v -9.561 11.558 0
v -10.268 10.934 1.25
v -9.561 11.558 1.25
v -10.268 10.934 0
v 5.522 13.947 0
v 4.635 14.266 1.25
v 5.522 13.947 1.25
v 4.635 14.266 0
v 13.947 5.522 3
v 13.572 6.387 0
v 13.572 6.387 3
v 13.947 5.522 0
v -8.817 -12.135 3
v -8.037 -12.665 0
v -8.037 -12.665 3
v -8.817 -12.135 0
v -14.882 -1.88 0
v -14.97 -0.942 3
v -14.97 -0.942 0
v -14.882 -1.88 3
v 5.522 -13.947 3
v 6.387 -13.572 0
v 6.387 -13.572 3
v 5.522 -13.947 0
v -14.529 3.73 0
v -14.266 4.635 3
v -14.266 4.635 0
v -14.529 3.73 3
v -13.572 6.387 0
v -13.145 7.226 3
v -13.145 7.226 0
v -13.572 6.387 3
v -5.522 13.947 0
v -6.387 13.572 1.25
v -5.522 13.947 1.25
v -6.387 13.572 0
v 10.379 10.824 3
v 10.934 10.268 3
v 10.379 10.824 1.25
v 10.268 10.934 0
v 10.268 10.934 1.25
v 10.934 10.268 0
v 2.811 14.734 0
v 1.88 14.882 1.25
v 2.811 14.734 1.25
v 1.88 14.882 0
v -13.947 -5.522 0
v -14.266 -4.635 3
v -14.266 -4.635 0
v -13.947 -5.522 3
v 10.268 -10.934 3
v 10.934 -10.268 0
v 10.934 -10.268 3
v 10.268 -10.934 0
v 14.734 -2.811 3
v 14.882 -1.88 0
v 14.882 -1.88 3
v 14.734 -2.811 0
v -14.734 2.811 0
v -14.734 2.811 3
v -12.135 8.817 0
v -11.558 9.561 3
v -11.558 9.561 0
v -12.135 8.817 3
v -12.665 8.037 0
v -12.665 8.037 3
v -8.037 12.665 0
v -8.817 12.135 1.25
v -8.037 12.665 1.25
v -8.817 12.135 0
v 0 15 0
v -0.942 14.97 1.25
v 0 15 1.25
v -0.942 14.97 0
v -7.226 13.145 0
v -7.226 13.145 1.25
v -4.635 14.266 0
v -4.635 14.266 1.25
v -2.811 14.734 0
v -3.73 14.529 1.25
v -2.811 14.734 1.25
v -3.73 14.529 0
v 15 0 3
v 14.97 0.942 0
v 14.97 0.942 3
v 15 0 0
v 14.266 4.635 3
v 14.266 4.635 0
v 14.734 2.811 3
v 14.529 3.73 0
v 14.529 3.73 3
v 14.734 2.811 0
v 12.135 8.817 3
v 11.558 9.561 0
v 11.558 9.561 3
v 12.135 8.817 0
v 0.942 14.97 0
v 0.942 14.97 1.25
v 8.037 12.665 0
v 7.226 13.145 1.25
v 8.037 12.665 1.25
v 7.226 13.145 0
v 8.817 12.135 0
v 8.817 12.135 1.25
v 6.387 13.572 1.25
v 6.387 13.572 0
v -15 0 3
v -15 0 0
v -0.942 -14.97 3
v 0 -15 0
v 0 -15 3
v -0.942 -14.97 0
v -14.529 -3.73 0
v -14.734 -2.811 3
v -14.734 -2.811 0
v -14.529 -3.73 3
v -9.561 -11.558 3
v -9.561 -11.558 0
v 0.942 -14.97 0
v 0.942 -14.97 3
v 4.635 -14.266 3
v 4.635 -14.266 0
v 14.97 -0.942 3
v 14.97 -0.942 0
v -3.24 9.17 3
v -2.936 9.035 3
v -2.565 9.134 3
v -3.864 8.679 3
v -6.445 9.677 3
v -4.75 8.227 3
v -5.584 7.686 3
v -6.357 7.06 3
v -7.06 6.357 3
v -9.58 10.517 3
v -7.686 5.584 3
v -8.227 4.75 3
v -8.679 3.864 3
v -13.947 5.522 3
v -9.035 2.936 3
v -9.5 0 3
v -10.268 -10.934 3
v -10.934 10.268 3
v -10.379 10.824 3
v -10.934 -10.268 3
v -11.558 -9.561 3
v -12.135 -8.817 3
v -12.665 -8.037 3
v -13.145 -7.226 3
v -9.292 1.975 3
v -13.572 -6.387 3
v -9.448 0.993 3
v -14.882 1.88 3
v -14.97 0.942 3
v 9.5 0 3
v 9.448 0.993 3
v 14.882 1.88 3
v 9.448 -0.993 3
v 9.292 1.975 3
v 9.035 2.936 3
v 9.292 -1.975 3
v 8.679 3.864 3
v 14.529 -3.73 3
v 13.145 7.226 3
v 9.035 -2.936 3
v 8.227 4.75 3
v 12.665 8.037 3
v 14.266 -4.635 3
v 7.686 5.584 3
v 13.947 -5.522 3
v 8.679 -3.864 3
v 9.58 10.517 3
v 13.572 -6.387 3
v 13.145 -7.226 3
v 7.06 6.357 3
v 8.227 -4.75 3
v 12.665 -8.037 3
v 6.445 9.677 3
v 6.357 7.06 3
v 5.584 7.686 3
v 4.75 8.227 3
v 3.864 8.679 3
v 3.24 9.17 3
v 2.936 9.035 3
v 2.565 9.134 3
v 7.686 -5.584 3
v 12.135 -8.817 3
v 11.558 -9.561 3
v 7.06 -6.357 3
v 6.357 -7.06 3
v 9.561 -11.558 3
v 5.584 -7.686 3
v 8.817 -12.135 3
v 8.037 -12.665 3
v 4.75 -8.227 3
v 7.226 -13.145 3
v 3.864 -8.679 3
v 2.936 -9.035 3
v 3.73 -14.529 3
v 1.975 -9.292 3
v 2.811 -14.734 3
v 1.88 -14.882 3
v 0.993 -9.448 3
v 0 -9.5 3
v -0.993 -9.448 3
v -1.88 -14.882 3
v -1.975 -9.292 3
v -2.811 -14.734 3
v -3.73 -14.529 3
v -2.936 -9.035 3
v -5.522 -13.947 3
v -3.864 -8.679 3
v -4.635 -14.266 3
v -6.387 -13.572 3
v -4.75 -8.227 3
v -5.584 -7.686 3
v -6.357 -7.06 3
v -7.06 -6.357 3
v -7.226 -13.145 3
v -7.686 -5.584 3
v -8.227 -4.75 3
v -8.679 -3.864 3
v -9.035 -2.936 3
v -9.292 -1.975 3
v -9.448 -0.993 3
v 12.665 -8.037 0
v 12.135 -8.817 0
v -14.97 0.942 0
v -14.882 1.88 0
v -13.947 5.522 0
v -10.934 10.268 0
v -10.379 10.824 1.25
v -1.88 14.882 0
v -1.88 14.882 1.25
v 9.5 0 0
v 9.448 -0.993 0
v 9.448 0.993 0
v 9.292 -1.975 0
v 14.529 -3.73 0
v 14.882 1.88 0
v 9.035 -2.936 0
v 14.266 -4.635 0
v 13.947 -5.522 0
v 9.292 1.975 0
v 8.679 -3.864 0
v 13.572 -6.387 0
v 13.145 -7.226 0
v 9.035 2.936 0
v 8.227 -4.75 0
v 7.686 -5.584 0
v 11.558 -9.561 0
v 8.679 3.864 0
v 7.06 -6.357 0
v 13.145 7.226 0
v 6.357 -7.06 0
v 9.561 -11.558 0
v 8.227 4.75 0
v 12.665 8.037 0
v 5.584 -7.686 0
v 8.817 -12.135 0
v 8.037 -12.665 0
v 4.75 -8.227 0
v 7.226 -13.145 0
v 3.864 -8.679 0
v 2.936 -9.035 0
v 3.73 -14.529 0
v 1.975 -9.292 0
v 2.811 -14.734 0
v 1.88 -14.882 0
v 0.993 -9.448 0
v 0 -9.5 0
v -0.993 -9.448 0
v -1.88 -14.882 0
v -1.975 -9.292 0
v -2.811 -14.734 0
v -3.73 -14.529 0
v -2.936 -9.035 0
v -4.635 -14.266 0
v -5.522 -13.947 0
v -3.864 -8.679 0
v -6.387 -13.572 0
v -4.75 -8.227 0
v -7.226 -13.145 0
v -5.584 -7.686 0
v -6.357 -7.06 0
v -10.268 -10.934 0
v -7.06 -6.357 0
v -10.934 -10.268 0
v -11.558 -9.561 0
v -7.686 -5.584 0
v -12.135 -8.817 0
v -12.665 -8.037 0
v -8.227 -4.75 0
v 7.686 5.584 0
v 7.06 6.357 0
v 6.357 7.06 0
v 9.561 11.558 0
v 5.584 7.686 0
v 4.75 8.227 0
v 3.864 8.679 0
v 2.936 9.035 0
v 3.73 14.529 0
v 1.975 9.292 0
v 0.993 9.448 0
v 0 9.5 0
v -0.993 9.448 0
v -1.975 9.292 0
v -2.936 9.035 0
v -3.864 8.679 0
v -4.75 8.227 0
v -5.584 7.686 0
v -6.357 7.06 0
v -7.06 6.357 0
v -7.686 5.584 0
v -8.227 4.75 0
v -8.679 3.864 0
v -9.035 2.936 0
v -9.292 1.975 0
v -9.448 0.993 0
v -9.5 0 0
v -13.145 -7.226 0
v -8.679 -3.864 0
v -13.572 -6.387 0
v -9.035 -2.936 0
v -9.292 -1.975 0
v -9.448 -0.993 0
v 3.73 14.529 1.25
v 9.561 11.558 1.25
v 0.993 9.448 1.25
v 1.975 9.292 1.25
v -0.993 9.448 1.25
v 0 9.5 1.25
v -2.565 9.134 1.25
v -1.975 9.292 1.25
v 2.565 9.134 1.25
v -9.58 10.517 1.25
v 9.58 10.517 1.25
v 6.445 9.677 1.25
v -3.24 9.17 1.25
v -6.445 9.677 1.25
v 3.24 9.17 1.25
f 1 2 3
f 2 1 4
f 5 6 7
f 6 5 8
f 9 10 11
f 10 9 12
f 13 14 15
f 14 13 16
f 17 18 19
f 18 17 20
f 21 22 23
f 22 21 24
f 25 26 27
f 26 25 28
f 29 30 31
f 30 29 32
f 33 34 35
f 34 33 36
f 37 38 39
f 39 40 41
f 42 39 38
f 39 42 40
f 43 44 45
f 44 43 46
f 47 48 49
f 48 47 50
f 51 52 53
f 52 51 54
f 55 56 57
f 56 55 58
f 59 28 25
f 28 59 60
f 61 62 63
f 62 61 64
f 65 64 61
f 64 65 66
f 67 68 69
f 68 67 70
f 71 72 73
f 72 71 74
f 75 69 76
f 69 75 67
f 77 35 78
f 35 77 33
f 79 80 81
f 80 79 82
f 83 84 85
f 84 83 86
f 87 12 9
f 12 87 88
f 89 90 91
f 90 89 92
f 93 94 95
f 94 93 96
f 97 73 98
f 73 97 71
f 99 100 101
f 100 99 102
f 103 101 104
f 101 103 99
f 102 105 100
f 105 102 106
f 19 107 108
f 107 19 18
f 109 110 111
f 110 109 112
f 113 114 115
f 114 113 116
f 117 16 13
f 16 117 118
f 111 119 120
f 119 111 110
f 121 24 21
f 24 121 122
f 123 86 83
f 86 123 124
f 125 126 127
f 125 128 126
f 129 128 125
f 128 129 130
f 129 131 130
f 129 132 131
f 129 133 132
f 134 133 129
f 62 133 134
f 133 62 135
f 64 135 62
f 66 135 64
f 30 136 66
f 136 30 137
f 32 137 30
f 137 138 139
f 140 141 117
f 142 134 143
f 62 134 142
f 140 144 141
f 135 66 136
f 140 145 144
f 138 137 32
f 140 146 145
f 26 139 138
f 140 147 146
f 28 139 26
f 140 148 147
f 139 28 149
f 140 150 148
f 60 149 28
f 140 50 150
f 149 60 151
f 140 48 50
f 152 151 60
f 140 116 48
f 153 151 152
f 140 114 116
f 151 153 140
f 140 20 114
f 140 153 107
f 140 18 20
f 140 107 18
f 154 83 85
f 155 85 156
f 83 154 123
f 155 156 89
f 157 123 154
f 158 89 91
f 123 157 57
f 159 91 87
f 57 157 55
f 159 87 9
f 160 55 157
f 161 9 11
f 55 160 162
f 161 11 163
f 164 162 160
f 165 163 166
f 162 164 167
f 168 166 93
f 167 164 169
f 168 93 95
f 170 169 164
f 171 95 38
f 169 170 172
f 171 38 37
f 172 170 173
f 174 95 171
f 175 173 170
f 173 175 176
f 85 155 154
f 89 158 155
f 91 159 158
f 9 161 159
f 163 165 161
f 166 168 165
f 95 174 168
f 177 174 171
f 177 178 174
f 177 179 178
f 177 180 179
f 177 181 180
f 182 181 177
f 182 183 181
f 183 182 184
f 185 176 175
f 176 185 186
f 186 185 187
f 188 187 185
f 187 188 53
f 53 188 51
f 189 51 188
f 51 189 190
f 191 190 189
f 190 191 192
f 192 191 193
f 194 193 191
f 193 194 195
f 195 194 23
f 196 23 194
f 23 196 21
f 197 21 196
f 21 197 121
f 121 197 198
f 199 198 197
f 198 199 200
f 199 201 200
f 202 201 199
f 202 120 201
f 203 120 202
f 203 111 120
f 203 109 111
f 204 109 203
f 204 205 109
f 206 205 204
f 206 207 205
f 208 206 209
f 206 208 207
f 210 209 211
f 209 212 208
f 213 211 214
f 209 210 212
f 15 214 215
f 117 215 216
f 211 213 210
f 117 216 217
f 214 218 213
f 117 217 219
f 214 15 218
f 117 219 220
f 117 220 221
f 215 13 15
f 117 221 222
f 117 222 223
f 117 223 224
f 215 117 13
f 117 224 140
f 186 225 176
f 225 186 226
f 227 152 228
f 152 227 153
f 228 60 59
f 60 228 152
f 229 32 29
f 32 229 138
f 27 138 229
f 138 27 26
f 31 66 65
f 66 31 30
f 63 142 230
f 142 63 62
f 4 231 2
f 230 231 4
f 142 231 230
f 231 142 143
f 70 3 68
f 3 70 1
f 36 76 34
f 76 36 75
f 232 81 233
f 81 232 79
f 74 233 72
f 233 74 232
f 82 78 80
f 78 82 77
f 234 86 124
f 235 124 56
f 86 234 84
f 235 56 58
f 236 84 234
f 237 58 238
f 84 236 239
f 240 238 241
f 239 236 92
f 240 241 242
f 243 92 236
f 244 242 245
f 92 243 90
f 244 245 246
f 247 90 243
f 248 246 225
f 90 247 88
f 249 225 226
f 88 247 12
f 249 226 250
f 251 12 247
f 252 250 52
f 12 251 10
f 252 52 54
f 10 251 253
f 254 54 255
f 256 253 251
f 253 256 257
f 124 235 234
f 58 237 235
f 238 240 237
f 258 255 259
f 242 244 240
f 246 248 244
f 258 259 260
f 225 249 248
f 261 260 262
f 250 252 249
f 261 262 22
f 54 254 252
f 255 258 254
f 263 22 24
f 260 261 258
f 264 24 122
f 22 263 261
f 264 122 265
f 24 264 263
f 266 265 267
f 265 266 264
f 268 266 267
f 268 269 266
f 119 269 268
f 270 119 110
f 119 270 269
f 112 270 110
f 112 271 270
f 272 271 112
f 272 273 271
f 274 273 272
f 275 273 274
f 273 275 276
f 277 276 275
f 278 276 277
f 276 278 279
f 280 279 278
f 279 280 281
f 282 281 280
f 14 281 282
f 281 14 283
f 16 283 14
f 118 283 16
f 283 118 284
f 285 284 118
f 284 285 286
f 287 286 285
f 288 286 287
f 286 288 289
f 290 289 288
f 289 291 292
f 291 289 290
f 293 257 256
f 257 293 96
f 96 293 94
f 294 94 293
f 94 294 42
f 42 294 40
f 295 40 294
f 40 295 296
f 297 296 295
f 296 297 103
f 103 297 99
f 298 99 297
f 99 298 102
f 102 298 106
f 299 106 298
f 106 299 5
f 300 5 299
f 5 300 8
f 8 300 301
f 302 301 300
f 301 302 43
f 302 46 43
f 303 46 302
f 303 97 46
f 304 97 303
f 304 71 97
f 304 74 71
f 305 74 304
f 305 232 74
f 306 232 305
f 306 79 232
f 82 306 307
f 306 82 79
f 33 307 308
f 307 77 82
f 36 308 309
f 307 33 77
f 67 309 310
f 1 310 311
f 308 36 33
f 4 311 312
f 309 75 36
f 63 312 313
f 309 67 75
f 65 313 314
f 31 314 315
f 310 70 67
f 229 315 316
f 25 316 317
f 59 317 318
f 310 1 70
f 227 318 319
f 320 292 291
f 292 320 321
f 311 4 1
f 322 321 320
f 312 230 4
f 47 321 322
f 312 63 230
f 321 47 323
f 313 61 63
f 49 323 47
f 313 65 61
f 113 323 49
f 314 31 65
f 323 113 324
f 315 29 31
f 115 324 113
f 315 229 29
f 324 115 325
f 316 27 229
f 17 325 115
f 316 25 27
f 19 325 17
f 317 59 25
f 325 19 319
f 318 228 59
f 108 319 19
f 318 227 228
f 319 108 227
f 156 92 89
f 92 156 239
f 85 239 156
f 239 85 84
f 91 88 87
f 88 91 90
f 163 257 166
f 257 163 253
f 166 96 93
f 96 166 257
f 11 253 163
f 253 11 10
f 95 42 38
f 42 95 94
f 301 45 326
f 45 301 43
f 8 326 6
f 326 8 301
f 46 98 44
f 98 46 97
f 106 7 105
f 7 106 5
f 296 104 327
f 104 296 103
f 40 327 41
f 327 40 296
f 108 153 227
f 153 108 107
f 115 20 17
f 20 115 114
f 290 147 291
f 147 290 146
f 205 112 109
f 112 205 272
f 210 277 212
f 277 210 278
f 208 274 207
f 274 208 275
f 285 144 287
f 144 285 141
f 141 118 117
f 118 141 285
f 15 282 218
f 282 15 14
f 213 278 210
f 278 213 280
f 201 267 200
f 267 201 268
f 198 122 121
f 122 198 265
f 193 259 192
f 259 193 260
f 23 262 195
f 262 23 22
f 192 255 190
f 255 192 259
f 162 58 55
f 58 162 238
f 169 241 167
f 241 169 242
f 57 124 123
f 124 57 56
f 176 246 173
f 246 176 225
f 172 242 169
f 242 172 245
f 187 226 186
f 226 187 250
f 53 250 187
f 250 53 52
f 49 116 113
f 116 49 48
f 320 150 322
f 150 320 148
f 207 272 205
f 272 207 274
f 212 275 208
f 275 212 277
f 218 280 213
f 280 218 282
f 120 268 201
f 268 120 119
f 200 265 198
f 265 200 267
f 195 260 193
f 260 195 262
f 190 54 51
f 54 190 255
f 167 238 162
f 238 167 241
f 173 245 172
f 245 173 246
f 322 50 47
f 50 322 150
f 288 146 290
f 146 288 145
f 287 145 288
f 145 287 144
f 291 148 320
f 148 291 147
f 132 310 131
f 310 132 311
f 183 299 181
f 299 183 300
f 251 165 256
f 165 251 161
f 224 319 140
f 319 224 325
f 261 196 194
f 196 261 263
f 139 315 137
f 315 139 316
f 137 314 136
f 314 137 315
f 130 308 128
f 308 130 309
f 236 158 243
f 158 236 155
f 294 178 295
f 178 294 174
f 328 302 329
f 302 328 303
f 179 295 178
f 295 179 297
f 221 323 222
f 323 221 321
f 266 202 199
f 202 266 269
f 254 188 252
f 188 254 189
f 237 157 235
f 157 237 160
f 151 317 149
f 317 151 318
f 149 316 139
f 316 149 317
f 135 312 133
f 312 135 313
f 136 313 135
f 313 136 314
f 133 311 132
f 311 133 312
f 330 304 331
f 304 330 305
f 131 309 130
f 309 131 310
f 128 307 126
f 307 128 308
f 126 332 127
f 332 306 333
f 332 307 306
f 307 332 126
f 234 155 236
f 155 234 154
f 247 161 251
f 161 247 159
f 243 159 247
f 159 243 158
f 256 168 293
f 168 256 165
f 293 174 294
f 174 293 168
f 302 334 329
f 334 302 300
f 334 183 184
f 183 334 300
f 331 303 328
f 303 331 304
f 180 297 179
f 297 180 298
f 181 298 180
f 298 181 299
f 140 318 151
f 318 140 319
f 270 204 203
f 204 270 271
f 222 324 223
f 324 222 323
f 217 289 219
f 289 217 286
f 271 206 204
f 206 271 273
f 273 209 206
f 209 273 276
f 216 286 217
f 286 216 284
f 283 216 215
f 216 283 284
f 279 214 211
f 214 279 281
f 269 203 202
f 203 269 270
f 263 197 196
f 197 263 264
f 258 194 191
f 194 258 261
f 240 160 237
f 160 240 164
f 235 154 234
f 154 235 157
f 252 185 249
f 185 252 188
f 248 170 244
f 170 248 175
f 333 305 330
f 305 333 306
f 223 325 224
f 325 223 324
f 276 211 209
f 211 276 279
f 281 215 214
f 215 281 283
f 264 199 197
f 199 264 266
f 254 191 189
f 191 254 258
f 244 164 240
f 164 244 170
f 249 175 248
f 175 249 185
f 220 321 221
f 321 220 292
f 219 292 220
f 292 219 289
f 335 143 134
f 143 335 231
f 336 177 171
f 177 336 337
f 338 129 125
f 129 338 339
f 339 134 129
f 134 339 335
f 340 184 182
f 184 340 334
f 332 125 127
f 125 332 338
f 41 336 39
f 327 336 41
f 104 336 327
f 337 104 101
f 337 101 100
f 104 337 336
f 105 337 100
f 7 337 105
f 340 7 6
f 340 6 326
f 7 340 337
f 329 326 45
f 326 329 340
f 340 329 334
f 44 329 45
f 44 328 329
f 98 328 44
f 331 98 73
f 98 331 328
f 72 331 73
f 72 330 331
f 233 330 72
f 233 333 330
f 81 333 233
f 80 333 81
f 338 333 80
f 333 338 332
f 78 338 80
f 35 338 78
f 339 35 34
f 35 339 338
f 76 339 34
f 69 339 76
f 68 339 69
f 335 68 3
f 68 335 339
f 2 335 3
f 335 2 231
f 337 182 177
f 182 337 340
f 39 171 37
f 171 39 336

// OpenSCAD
module sensor_spacer(){
  difference(){
    translate([0, 0, 0]) color([0,0,0]) cylinder(r1=15, r2=15, h=3, center=false, $fn=100);
    translate([0, 0, -0.5]) cylinder(d=19, h=20, center=false, $fn=60);
    translate([0, 40, -0.1]) cylinder(d=62, h=1.85, center=false, $fn=60);
  }
}

translate([0, 0, 3]) rotate([0,180,0]) sensor_spacer();
